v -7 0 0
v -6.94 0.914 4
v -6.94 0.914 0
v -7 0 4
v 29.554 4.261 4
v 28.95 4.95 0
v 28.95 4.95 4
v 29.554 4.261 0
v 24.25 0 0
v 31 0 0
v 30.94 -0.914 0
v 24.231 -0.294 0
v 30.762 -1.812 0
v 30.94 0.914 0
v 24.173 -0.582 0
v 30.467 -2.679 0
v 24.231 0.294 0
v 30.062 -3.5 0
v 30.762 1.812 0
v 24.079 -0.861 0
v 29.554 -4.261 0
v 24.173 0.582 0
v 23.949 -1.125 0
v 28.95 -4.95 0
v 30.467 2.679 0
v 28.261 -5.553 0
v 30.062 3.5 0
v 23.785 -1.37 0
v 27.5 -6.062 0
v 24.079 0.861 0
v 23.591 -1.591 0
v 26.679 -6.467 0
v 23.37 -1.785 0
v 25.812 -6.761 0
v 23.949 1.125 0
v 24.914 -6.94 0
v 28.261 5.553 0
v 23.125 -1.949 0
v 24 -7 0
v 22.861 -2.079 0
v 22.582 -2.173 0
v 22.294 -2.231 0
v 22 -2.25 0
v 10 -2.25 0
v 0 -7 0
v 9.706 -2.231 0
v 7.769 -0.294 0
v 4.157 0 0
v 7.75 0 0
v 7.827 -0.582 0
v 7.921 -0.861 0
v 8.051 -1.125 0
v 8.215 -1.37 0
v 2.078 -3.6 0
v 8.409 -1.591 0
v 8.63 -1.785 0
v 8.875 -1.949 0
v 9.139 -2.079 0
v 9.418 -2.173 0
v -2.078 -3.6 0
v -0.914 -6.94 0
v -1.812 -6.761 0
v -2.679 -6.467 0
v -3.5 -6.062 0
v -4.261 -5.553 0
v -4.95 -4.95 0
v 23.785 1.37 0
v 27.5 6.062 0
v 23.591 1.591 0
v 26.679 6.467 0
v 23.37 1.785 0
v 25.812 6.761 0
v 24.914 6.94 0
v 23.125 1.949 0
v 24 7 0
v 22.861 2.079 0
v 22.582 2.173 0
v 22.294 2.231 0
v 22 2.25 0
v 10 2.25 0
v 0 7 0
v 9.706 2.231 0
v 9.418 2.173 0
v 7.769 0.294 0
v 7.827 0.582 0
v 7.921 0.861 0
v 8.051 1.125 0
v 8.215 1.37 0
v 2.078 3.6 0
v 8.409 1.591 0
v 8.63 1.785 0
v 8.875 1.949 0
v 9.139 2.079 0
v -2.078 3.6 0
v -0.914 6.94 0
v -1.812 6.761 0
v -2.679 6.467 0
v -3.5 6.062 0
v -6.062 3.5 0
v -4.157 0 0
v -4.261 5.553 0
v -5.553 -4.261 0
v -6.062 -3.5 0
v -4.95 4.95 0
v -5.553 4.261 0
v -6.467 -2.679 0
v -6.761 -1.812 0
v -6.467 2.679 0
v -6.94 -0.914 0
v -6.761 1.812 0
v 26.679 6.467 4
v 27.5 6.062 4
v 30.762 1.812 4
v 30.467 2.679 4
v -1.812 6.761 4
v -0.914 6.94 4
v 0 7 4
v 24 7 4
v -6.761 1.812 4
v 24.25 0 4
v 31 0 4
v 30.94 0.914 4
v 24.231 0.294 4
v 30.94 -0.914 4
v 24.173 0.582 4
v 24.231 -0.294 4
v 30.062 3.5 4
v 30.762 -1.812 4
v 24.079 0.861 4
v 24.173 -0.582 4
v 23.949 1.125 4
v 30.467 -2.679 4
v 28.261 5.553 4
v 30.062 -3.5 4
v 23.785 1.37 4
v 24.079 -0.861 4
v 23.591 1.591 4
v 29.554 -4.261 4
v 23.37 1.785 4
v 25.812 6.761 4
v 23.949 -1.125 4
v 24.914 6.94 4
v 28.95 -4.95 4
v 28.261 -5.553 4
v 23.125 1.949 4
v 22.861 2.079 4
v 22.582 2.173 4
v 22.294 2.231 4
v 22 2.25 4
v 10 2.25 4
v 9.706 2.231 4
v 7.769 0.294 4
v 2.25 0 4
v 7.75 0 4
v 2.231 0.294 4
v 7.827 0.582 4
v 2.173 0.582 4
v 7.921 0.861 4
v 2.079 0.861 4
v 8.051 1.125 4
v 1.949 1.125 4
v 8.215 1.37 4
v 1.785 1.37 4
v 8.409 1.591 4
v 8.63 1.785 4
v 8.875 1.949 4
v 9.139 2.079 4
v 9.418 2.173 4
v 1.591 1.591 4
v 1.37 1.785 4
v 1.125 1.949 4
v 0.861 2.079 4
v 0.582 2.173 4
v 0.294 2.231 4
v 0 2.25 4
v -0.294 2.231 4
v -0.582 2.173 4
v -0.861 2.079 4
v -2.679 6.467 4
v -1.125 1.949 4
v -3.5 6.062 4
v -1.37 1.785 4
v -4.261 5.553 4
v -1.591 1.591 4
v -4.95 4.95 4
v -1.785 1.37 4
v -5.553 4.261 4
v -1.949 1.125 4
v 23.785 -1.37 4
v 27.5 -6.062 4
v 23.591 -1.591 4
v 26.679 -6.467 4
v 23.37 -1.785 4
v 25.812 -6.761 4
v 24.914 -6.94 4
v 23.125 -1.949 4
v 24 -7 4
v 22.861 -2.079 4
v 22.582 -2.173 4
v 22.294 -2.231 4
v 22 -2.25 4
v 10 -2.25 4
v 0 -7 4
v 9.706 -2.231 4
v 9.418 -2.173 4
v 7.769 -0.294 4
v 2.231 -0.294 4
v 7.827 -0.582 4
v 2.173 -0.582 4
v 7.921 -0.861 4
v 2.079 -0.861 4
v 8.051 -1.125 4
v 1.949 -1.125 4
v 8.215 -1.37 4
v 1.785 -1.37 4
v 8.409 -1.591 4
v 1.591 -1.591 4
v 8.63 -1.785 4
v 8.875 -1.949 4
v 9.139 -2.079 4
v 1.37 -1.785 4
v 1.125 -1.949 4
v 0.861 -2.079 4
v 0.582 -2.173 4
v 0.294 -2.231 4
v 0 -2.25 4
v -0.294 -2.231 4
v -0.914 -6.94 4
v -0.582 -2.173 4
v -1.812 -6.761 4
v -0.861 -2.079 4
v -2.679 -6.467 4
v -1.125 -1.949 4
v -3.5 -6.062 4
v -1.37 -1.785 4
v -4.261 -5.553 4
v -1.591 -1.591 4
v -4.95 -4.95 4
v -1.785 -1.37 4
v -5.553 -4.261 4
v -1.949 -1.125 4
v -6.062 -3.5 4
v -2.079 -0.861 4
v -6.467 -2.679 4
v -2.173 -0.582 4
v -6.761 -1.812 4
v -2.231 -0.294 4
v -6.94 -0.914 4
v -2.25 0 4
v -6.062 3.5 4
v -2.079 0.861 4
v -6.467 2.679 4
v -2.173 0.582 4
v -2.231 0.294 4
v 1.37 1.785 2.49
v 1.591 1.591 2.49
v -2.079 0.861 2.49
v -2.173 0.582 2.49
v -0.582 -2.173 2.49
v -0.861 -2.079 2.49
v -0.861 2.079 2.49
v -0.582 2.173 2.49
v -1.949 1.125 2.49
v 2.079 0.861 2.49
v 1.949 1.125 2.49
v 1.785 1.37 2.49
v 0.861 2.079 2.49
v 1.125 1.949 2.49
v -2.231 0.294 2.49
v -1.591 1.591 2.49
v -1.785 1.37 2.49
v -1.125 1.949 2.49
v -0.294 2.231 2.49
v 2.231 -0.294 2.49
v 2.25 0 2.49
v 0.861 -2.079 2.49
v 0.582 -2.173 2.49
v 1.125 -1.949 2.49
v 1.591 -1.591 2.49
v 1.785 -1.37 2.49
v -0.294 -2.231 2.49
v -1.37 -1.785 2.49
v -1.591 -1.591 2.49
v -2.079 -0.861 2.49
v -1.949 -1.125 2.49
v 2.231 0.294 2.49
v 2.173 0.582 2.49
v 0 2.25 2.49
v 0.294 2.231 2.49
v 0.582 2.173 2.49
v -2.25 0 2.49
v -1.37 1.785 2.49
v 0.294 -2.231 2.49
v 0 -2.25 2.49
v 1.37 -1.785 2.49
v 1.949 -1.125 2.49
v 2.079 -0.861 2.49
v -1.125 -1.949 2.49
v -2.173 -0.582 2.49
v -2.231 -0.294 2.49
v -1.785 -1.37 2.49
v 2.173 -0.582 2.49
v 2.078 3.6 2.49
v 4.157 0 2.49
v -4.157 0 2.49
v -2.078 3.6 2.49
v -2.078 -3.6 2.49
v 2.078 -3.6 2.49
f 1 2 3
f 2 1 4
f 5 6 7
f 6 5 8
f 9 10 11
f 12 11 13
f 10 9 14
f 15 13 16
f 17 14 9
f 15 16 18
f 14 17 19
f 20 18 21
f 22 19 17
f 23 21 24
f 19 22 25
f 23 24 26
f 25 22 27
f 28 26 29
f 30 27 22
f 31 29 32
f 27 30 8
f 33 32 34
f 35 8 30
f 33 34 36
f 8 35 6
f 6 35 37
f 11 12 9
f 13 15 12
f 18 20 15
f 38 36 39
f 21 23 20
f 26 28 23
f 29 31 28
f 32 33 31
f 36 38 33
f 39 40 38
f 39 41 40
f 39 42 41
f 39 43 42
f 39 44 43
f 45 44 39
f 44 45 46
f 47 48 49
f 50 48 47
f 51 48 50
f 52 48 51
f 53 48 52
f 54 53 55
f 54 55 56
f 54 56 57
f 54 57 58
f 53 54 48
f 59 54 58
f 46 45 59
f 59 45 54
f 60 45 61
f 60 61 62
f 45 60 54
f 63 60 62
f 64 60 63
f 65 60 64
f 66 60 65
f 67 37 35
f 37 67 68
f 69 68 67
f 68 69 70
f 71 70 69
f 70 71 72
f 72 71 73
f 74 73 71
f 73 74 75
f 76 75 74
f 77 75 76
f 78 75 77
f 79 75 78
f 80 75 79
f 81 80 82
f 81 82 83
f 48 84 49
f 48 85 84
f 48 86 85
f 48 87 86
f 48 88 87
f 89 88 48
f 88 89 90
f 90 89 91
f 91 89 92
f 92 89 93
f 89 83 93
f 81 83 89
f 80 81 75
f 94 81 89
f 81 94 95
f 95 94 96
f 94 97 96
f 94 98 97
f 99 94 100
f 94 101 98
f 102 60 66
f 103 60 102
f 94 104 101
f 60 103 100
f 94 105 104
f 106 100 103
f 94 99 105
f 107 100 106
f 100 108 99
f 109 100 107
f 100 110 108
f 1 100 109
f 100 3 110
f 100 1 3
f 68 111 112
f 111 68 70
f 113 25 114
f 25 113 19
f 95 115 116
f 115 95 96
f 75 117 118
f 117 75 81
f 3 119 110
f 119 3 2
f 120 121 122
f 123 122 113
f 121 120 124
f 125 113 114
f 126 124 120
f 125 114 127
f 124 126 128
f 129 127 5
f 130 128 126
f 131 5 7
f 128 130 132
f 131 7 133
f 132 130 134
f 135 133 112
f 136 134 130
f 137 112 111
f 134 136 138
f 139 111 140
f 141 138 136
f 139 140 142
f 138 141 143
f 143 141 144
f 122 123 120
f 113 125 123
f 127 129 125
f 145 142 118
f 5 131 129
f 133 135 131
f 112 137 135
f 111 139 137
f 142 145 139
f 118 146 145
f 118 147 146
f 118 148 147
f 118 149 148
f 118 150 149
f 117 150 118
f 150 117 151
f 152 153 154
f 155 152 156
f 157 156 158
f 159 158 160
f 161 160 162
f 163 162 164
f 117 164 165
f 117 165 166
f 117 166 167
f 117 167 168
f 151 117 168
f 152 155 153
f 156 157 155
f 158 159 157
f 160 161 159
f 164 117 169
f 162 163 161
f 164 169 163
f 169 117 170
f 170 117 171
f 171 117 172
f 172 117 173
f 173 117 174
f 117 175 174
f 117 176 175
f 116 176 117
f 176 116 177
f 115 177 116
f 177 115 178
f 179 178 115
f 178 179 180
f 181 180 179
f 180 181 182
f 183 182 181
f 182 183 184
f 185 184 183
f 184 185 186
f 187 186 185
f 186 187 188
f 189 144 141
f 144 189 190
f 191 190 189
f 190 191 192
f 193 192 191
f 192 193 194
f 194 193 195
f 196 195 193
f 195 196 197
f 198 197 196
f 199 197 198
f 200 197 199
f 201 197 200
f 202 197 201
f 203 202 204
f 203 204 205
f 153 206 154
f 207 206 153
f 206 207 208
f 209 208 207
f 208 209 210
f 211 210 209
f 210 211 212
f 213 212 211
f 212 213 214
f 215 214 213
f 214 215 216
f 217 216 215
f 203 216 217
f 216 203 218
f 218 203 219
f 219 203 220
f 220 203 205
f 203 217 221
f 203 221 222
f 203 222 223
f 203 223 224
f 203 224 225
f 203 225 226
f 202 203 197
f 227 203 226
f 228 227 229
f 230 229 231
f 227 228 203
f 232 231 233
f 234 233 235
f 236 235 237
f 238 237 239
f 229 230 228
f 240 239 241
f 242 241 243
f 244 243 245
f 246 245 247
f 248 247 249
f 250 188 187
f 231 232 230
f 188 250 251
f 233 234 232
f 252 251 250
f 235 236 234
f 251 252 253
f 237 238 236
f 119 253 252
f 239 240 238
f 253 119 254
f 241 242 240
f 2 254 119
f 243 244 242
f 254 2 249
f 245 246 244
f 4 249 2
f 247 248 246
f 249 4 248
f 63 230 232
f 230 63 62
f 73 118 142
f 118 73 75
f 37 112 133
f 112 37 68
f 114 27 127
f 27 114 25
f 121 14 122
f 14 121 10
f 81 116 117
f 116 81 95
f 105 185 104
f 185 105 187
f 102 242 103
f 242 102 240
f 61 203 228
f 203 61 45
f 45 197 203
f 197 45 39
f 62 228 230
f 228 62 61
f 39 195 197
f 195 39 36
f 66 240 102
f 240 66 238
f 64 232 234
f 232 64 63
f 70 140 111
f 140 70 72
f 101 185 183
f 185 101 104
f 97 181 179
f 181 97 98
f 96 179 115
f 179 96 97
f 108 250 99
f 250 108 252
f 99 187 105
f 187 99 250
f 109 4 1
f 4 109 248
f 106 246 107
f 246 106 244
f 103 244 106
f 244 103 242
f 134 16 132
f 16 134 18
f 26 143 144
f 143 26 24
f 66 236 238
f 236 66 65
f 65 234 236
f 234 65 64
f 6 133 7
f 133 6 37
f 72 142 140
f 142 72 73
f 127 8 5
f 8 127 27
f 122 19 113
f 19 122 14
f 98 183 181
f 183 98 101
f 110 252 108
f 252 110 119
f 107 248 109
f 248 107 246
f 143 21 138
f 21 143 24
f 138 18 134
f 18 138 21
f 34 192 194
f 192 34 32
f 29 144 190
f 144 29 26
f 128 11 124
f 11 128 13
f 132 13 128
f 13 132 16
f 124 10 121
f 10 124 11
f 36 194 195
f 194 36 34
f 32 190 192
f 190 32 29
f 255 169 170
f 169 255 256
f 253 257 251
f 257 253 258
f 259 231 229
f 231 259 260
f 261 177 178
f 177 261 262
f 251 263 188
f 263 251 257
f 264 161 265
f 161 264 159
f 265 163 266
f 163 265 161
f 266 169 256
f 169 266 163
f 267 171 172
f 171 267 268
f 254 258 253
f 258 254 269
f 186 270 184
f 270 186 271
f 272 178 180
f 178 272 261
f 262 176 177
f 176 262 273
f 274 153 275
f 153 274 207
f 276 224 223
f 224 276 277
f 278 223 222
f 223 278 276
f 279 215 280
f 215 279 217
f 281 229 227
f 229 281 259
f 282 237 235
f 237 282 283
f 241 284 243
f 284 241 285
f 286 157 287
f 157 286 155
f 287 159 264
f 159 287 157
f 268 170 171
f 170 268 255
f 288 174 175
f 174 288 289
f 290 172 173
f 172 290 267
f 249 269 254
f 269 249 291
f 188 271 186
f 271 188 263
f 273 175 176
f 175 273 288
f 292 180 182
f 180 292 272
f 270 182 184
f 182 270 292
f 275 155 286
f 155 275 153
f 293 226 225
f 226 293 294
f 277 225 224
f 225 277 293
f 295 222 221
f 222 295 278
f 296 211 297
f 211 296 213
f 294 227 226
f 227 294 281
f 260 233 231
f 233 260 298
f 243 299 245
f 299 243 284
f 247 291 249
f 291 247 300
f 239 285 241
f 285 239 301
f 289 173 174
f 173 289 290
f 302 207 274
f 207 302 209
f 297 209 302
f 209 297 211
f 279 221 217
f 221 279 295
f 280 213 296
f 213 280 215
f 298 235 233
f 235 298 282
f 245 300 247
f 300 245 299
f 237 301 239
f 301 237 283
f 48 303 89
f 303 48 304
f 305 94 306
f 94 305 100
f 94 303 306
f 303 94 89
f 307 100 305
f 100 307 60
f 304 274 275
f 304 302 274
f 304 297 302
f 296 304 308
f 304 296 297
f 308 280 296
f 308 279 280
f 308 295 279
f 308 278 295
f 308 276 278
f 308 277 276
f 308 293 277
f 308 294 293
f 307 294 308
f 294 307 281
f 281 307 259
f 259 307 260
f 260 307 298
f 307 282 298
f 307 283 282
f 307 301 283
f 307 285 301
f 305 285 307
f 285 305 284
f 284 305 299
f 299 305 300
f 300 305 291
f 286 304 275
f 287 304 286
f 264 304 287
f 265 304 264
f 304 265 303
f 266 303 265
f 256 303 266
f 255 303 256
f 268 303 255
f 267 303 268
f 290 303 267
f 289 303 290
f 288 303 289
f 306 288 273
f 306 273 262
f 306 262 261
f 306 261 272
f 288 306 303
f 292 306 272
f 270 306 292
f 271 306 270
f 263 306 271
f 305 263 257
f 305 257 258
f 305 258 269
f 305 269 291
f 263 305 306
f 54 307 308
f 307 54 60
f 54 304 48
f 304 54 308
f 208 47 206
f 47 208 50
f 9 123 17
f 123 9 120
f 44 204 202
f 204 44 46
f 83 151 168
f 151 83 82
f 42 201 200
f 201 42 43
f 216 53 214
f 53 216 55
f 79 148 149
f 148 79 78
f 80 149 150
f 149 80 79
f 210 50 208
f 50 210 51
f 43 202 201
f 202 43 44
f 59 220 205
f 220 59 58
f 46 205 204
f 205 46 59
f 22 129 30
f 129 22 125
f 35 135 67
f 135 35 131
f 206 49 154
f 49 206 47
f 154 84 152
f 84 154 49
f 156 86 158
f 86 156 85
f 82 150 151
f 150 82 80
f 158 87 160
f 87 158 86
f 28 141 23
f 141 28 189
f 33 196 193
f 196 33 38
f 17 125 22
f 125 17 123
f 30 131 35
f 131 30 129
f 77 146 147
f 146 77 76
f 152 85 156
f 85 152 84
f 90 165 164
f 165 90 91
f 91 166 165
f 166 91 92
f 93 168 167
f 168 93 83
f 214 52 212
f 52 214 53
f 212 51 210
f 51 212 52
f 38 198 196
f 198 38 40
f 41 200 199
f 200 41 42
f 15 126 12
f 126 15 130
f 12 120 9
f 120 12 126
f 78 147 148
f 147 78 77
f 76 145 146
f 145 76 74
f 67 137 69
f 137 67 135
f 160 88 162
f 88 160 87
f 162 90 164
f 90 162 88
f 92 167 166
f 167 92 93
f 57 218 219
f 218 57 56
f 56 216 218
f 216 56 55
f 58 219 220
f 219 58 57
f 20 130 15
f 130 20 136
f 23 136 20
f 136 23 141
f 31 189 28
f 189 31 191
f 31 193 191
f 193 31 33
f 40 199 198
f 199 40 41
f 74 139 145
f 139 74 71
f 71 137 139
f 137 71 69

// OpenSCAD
// Dock contact pad carrier (2026-10-24). Grover docks on the Eufy base; its
// two sprung rollers end up under the deck plate's hole grid, but not under
// a free hole (Enoch: "slightly offset towards the center and rearwards",
// unmeasurable with Grover in place). So: a small plate that bolts through
// ANY deck hole 10..24 mm from the roller and carries the contact bolt in a
// radial slot - rotate the plate about the deck bolt and slide the pad bolt
// along the slot, and the pad reaches any point in that ring. Tighten both
// and it stays.
//
// Contact: an M4 bolt, head DOWN, through the slot, clamped above and below
// the plate by two nuts (height = how far it hangs, set by the nuts), a
// 16-20 mm fender washer under the head as the pad face, ring terminal for
// the wire under the top nut. Two plates, one per side; mirror-symmetric
// so one print x2.
//
// Prints flat, no supports.

plate_t   = 4;
plate_w   = 14;          // across the slot
r_min     = 10;          // pad bolt centre, nearest to the deck bolt (nut clearance)
r_max     = 24;          // ... farthest
deck_hole = 4.5;         // M4 clearance
slot_w    = 4.5;
end_r     = plate_w / 2;
nut_af    = 7.2;         // M4 nut across flats + play: a hex pocket under the deck bolt
                         // so the deck nut can't turn while you tighten from above
nut_h     = 2.5;

$fn = 48;

module plate() {
  difference() {
    hull() {
      cylinder(r = end_r, h = plate_t);
      translate([r_max, 0, 0]) cylinder(r = end_r, h = plate_t);
    }
    // deck bolt
    translate([0, 0, -1]) cylinder(d = deck_hole, h = plate_t + 2);
    // hex pocket for its nut, from below
    translate([0, 0, -0.01]) cylinder(d = nut_af / cos(30), h = nut_h, $fn = 6);
    // radial slot for the pad bolt
    hull() for (x = [r_min, r_max - 2])
      translate([x, 0, -1]) cylinder(d = slot_w, h = plate_t + 2);
  }
}

plate();
echo(str("dock pad plate: ", r_max + end_r, " x ", plate_w, " x ", plate_t, " mm, slot ", r_min, "..", r_max - 2, " mm from the deck bolt"));
